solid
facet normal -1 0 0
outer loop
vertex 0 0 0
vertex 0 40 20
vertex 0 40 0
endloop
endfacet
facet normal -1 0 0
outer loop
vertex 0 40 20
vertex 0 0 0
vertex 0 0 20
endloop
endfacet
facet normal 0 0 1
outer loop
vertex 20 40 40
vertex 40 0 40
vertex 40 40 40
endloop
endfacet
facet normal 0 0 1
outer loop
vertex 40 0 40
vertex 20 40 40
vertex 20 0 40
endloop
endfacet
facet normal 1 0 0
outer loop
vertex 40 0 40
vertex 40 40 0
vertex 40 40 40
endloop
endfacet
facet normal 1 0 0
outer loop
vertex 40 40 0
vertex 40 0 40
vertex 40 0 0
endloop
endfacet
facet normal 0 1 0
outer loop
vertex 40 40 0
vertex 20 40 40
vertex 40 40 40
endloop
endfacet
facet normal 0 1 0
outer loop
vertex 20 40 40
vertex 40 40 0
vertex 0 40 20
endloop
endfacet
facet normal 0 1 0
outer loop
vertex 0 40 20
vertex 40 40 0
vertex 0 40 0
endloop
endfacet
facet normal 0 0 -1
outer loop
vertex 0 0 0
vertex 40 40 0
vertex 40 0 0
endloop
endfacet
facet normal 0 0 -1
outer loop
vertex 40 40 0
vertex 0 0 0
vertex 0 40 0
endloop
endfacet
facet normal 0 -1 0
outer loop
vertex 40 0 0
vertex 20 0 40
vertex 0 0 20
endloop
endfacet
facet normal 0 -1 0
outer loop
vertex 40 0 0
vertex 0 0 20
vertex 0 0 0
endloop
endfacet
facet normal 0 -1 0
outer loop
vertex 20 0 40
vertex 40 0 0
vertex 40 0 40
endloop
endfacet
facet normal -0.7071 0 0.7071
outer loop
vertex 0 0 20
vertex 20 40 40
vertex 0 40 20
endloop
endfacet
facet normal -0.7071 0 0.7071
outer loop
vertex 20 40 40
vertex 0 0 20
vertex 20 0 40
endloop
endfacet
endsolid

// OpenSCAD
union(){
}
difference(){
  cube([40, 40, 40], center=false);
  translate([0, 0, 20]){
    color([1,0.8,0]) {
      rotate([0, 315, 0]){
        cube([30, 40, 20], center=false);
      }
    }
  }
}
